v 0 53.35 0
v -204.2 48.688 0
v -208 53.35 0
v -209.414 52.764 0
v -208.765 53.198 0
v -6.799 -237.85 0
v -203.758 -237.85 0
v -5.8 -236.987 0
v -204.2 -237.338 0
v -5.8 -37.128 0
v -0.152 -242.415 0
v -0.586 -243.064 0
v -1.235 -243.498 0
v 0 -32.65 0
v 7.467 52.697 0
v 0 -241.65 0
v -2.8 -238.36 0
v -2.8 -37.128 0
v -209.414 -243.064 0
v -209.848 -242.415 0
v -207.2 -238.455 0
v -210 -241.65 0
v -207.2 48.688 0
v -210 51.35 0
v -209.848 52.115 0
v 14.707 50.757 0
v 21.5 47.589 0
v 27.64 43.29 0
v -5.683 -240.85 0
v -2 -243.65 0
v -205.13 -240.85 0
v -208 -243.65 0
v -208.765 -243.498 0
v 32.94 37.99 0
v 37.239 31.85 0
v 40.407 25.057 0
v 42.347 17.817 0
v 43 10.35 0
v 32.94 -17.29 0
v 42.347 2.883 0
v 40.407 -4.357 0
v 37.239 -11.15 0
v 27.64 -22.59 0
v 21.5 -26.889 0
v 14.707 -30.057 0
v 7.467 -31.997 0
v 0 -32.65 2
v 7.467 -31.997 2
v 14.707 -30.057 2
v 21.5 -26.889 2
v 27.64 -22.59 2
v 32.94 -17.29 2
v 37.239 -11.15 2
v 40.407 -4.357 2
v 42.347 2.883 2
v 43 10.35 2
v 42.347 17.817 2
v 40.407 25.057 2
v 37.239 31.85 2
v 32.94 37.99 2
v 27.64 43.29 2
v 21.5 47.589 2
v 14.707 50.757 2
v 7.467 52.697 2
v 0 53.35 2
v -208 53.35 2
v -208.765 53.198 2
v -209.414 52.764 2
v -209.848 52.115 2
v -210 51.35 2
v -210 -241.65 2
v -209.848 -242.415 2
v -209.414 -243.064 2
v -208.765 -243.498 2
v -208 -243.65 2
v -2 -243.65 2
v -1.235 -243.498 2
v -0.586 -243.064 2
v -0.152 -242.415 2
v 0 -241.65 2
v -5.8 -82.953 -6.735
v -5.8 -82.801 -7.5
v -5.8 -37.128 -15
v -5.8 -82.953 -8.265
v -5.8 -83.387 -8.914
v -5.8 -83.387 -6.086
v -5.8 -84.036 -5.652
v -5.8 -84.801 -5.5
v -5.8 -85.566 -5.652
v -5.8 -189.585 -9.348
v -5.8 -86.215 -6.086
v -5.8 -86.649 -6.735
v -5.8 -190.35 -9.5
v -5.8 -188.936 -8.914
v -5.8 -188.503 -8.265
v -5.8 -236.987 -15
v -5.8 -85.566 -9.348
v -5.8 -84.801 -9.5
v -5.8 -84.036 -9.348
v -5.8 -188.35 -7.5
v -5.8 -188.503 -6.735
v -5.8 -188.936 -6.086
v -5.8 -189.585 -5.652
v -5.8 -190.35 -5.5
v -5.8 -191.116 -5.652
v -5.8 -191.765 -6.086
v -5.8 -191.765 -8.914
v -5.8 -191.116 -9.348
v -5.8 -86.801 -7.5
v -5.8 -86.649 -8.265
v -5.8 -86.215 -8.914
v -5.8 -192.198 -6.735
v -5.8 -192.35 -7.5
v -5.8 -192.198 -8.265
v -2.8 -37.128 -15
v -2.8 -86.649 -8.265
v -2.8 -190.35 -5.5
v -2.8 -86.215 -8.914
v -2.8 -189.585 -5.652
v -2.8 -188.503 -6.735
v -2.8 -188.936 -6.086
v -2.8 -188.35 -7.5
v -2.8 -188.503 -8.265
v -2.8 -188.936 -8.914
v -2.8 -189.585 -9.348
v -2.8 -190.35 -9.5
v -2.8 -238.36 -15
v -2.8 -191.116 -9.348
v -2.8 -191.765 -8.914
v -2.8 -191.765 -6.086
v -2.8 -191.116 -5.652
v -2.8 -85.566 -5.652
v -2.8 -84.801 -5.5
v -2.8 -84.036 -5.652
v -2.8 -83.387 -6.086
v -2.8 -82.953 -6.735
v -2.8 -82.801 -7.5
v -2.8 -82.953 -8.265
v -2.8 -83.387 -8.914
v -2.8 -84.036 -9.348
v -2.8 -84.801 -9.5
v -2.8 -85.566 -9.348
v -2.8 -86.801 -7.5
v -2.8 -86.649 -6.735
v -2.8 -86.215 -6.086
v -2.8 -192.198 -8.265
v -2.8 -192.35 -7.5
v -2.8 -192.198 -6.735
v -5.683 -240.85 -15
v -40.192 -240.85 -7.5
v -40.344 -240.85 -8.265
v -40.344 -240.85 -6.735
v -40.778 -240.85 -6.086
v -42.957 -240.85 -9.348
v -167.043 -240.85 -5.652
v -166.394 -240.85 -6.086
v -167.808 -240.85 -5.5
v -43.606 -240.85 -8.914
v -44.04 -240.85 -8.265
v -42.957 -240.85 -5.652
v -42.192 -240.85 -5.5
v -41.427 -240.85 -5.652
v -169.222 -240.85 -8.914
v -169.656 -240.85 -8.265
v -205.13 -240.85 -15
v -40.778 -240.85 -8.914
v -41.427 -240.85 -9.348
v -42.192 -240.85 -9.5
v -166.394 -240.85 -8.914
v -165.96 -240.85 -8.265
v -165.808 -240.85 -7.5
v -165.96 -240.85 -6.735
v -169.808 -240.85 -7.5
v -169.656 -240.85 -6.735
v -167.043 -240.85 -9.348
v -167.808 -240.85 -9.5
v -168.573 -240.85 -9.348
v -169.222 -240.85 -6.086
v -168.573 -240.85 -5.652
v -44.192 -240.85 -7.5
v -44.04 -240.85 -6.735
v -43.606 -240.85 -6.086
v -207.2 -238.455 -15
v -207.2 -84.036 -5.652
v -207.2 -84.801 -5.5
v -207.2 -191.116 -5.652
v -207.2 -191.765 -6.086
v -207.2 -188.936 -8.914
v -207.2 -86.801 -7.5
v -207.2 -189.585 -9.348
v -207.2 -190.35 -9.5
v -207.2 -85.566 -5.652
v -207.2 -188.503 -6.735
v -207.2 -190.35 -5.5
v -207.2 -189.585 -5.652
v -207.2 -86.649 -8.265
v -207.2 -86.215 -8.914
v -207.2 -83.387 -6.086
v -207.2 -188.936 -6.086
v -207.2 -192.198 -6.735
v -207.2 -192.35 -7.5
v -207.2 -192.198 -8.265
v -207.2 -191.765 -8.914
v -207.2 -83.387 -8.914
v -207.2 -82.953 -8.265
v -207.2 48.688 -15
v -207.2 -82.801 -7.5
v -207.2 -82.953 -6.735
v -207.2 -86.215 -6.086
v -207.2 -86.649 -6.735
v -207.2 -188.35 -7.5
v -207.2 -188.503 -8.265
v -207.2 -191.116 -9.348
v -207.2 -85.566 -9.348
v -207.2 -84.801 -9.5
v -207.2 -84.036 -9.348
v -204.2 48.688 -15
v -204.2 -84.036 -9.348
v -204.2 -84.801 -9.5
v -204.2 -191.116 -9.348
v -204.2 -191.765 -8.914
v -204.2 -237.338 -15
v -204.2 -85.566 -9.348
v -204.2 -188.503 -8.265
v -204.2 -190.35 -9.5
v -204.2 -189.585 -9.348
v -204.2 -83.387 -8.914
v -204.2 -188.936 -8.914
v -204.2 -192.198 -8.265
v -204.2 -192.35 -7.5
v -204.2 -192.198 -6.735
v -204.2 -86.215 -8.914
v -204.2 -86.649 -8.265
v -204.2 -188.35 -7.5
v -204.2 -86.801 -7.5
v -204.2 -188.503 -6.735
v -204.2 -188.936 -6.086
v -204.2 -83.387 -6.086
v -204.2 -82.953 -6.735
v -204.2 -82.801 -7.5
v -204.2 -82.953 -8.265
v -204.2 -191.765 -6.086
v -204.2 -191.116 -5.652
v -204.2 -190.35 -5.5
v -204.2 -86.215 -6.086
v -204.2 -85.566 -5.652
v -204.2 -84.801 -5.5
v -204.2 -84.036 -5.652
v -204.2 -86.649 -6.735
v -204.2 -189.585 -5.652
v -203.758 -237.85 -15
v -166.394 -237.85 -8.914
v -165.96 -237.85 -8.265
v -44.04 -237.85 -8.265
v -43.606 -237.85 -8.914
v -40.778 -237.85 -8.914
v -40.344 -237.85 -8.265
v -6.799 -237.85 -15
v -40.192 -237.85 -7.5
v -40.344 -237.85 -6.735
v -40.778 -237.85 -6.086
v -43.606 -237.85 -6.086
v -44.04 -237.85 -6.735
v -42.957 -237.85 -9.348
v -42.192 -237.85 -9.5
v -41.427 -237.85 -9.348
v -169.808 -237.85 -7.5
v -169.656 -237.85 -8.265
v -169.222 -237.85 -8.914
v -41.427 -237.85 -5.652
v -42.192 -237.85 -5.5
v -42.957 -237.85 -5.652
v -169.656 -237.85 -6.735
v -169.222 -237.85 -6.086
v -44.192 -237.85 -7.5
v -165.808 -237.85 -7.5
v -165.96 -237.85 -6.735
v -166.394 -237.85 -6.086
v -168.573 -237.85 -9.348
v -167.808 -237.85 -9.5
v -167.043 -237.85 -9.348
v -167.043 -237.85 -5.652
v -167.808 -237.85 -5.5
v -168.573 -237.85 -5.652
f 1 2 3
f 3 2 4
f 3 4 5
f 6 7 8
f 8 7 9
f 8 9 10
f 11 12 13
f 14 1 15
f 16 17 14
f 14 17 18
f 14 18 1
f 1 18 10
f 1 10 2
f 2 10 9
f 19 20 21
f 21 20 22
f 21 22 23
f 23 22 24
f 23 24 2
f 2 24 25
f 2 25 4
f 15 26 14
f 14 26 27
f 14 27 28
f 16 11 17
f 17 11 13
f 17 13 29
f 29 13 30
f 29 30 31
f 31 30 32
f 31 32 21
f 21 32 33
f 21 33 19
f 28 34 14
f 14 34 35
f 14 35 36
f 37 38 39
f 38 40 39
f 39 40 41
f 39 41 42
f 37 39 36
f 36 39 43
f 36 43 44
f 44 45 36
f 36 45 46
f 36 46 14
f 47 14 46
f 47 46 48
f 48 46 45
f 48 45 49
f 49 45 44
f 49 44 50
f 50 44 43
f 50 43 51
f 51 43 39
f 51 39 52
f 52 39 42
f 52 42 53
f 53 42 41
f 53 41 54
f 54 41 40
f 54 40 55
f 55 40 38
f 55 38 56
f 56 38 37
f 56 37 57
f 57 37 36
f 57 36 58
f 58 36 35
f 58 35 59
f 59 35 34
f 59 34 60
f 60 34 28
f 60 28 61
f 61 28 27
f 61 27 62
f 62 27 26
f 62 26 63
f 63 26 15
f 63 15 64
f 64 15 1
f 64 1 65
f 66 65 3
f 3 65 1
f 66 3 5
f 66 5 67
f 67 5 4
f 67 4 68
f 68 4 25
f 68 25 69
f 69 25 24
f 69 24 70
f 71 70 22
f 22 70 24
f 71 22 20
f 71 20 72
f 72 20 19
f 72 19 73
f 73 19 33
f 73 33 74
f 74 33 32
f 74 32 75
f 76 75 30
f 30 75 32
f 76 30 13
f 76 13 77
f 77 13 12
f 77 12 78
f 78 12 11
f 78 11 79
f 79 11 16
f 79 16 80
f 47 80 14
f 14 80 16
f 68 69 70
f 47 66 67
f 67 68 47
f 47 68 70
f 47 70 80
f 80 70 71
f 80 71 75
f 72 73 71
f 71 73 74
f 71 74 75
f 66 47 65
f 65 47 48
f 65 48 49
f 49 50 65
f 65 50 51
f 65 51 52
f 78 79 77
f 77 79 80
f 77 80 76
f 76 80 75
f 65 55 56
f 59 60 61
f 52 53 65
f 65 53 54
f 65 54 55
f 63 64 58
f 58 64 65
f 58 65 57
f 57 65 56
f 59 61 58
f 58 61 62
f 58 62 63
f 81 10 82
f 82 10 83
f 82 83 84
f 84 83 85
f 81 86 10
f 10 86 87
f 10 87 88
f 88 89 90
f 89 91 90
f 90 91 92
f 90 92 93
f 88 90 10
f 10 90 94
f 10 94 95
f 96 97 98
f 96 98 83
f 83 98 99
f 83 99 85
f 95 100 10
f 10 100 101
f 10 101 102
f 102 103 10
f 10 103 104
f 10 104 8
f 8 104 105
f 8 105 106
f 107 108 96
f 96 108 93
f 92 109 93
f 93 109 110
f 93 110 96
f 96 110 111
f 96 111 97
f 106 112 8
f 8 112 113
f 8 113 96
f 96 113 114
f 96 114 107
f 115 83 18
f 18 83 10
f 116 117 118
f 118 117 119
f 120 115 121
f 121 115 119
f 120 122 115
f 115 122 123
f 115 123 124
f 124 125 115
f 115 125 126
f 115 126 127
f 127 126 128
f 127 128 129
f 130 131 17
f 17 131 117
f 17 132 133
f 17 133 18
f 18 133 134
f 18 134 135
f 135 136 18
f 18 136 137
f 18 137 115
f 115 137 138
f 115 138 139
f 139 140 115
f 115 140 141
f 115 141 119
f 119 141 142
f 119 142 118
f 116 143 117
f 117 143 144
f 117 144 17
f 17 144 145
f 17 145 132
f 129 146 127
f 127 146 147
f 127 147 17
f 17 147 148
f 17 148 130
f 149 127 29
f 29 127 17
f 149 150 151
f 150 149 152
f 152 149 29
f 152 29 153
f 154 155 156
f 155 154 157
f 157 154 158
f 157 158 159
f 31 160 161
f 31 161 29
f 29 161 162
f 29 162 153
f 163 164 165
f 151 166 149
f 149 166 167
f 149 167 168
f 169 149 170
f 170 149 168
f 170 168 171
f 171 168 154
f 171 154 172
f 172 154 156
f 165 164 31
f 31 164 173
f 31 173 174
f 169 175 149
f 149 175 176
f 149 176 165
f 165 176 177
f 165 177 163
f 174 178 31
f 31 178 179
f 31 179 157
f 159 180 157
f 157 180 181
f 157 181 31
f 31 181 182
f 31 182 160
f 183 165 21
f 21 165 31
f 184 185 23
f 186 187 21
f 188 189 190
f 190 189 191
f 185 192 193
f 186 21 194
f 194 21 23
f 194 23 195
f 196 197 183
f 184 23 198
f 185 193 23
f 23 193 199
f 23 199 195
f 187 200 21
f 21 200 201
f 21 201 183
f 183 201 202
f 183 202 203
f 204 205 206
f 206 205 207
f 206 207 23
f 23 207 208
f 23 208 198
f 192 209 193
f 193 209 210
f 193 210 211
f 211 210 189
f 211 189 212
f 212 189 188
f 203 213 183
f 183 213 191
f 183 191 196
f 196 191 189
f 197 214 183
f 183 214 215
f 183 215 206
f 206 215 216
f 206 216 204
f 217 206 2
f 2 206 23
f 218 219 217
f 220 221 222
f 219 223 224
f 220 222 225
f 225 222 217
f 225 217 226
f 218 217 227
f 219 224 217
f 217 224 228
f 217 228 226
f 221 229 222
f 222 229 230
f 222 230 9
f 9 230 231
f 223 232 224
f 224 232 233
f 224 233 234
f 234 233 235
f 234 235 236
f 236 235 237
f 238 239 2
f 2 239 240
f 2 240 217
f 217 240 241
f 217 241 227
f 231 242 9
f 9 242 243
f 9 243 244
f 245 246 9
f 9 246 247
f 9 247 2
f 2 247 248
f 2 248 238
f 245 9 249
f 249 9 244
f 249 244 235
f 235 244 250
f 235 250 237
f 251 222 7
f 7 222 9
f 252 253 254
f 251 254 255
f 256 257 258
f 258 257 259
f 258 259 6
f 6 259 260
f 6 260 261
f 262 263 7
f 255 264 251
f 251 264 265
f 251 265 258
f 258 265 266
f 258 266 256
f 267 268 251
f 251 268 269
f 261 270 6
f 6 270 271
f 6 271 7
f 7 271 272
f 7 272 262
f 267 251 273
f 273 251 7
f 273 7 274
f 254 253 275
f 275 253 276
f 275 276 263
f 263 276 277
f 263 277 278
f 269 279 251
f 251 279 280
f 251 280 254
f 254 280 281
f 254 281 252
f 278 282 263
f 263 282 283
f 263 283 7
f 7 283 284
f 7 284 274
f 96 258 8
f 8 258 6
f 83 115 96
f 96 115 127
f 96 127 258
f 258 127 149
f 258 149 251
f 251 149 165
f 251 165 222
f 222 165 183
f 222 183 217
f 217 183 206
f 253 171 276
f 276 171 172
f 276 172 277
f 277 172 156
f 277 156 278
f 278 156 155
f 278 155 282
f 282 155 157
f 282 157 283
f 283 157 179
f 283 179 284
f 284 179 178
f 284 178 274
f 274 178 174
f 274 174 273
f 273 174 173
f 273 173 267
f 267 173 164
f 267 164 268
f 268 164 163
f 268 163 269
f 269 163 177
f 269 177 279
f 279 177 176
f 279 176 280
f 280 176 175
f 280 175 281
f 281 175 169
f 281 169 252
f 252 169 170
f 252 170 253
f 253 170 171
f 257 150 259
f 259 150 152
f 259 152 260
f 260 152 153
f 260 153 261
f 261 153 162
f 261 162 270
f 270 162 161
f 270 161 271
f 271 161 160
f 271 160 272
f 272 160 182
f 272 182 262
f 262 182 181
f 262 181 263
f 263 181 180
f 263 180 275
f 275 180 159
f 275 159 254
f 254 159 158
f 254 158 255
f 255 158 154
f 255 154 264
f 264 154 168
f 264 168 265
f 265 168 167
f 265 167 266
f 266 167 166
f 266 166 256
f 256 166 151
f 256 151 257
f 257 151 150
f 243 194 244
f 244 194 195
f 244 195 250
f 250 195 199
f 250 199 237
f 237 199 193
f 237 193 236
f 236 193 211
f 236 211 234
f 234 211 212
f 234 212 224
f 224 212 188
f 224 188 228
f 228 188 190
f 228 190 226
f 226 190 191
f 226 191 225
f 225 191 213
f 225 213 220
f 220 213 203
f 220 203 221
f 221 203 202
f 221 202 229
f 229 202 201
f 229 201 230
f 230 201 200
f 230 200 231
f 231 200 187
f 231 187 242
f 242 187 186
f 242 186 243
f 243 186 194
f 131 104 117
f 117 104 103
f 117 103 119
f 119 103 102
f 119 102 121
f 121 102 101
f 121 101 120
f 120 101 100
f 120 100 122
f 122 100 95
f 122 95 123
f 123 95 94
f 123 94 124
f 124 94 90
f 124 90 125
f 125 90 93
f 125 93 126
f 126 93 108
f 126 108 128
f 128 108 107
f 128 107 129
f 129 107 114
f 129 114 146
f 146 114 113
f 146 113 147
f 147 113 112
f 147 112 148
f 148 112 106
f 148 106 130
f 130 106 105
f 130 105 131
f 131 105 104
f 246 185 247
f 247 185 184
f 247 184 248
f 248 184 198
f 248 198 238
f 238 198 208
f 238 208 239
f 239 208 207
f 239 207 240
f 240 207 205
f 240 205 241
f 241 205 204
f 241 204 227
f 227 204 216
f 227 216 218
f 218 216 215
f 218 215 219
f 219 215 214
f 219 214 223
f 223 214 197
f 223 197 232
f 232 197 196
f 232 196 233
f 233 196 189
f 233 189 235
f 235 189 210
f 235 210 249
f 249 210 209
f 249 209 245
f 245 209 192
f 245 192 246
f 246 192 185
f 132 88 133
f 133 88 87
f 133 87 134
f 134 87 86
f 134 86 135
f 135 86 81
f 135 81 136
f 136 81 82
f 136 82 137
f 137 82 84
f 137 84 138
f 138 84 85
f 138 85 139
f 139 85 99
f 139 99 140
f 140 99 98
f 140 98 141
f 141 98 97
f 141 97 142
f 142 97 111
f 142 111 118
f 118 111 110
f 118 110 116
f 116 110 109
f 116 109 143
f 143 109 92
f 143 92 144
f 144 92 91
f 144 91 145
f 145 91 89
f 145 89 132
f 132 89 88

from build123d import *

# Parameters (mm, degrees)
EXTRUDE_1_DEPTH     = 2
EXTRUDE_1_2_DEPTH   = 15
SKETCH_4_R          = 2
CUT_EXTRUDE_1_DEPTH = 15
SKETCH_5_R          = 2
CUT_EXTRUDE_2_DEPTH = 283


with BuildPart() as part:
    # 草图1 → Extrude 1 (new body)
    with BuildSketch(Plane.XY):
        with BuildLine():
            Line((0, 53.35), (-208, 53.35))
            ThreePointArc((-208, 53.35), (-209.414213562, 52.764213562), (-210, 51.35))
            Line((-210, 51.35), (-210, -241.65))
            ThreePointArc((-210, -241.65), (-209.414213562, -243.064213562), (-208, -243.65))
            Line((-208, -243.65), (-2, -243.65))
            ThreePointArc((-2, -243.65), (-0.585786438, -243.064213562), (0, -241.65))
            Line((0, -241.65), (0, -32.65))
            ThreePointArc((0, -32.65), (43, 10.35), (0, 53.35))
        make_face()
    extrude(amount=EXTRUDE_1_DEPTH)

    # 草图3 → Extrude 1 2 (add)
    with BuildSketch(Plane(origin=(0, 0, 0), x_dir=(-1, 0, 0), z_dir=(0, 0, -1))):
        Polygon((207.2, 48.687657947), (207.2, -238.454577256), (205.130446753, -240.85), (5.682615129, -240.85), (2.8, -238.359531245), (2.8, -37.127932812), (5.8, -37.127932812), (5.8, -236.986839537), (6.799072726, -237.85), (203.757755045, -237.85), (204.2, -237.338119658), (204.2, 48.687657947), align=None)
    extrude(amount=EXTRUDE_1_2_DEPTH)

    # 草图4 → 切除-拉伸1 (cut)
    with BuildSketch(Plane.XZ.offset(240.85)):
        with Locations((-167.807888651, -7.5)):
            Circle(SKETCH_4_R)
        with Locations((-42.192111349, -7.5)):
            Circle(SKETCH_4_R)
    extrude(amount=-CUT_EXTRUDE_1_DEPTH, mode=Mode.SUBTRACT)

    # 草图5 → 切除-拉伸2 (cut)
    with BuildSketch(Plane.ZY.offset(207.2)):
        with Locations((-7.5, -190.350496004)):
            Circle(SKETCH_5_R)
        with Locations((-7.5, -84.801056957)):
            Circle(SKETCH_5_R)
    extrude(amount=-CUT_EXTRUDE_2_DEPTH, mode=Mode.SUBTRACT)


solid = part.part
